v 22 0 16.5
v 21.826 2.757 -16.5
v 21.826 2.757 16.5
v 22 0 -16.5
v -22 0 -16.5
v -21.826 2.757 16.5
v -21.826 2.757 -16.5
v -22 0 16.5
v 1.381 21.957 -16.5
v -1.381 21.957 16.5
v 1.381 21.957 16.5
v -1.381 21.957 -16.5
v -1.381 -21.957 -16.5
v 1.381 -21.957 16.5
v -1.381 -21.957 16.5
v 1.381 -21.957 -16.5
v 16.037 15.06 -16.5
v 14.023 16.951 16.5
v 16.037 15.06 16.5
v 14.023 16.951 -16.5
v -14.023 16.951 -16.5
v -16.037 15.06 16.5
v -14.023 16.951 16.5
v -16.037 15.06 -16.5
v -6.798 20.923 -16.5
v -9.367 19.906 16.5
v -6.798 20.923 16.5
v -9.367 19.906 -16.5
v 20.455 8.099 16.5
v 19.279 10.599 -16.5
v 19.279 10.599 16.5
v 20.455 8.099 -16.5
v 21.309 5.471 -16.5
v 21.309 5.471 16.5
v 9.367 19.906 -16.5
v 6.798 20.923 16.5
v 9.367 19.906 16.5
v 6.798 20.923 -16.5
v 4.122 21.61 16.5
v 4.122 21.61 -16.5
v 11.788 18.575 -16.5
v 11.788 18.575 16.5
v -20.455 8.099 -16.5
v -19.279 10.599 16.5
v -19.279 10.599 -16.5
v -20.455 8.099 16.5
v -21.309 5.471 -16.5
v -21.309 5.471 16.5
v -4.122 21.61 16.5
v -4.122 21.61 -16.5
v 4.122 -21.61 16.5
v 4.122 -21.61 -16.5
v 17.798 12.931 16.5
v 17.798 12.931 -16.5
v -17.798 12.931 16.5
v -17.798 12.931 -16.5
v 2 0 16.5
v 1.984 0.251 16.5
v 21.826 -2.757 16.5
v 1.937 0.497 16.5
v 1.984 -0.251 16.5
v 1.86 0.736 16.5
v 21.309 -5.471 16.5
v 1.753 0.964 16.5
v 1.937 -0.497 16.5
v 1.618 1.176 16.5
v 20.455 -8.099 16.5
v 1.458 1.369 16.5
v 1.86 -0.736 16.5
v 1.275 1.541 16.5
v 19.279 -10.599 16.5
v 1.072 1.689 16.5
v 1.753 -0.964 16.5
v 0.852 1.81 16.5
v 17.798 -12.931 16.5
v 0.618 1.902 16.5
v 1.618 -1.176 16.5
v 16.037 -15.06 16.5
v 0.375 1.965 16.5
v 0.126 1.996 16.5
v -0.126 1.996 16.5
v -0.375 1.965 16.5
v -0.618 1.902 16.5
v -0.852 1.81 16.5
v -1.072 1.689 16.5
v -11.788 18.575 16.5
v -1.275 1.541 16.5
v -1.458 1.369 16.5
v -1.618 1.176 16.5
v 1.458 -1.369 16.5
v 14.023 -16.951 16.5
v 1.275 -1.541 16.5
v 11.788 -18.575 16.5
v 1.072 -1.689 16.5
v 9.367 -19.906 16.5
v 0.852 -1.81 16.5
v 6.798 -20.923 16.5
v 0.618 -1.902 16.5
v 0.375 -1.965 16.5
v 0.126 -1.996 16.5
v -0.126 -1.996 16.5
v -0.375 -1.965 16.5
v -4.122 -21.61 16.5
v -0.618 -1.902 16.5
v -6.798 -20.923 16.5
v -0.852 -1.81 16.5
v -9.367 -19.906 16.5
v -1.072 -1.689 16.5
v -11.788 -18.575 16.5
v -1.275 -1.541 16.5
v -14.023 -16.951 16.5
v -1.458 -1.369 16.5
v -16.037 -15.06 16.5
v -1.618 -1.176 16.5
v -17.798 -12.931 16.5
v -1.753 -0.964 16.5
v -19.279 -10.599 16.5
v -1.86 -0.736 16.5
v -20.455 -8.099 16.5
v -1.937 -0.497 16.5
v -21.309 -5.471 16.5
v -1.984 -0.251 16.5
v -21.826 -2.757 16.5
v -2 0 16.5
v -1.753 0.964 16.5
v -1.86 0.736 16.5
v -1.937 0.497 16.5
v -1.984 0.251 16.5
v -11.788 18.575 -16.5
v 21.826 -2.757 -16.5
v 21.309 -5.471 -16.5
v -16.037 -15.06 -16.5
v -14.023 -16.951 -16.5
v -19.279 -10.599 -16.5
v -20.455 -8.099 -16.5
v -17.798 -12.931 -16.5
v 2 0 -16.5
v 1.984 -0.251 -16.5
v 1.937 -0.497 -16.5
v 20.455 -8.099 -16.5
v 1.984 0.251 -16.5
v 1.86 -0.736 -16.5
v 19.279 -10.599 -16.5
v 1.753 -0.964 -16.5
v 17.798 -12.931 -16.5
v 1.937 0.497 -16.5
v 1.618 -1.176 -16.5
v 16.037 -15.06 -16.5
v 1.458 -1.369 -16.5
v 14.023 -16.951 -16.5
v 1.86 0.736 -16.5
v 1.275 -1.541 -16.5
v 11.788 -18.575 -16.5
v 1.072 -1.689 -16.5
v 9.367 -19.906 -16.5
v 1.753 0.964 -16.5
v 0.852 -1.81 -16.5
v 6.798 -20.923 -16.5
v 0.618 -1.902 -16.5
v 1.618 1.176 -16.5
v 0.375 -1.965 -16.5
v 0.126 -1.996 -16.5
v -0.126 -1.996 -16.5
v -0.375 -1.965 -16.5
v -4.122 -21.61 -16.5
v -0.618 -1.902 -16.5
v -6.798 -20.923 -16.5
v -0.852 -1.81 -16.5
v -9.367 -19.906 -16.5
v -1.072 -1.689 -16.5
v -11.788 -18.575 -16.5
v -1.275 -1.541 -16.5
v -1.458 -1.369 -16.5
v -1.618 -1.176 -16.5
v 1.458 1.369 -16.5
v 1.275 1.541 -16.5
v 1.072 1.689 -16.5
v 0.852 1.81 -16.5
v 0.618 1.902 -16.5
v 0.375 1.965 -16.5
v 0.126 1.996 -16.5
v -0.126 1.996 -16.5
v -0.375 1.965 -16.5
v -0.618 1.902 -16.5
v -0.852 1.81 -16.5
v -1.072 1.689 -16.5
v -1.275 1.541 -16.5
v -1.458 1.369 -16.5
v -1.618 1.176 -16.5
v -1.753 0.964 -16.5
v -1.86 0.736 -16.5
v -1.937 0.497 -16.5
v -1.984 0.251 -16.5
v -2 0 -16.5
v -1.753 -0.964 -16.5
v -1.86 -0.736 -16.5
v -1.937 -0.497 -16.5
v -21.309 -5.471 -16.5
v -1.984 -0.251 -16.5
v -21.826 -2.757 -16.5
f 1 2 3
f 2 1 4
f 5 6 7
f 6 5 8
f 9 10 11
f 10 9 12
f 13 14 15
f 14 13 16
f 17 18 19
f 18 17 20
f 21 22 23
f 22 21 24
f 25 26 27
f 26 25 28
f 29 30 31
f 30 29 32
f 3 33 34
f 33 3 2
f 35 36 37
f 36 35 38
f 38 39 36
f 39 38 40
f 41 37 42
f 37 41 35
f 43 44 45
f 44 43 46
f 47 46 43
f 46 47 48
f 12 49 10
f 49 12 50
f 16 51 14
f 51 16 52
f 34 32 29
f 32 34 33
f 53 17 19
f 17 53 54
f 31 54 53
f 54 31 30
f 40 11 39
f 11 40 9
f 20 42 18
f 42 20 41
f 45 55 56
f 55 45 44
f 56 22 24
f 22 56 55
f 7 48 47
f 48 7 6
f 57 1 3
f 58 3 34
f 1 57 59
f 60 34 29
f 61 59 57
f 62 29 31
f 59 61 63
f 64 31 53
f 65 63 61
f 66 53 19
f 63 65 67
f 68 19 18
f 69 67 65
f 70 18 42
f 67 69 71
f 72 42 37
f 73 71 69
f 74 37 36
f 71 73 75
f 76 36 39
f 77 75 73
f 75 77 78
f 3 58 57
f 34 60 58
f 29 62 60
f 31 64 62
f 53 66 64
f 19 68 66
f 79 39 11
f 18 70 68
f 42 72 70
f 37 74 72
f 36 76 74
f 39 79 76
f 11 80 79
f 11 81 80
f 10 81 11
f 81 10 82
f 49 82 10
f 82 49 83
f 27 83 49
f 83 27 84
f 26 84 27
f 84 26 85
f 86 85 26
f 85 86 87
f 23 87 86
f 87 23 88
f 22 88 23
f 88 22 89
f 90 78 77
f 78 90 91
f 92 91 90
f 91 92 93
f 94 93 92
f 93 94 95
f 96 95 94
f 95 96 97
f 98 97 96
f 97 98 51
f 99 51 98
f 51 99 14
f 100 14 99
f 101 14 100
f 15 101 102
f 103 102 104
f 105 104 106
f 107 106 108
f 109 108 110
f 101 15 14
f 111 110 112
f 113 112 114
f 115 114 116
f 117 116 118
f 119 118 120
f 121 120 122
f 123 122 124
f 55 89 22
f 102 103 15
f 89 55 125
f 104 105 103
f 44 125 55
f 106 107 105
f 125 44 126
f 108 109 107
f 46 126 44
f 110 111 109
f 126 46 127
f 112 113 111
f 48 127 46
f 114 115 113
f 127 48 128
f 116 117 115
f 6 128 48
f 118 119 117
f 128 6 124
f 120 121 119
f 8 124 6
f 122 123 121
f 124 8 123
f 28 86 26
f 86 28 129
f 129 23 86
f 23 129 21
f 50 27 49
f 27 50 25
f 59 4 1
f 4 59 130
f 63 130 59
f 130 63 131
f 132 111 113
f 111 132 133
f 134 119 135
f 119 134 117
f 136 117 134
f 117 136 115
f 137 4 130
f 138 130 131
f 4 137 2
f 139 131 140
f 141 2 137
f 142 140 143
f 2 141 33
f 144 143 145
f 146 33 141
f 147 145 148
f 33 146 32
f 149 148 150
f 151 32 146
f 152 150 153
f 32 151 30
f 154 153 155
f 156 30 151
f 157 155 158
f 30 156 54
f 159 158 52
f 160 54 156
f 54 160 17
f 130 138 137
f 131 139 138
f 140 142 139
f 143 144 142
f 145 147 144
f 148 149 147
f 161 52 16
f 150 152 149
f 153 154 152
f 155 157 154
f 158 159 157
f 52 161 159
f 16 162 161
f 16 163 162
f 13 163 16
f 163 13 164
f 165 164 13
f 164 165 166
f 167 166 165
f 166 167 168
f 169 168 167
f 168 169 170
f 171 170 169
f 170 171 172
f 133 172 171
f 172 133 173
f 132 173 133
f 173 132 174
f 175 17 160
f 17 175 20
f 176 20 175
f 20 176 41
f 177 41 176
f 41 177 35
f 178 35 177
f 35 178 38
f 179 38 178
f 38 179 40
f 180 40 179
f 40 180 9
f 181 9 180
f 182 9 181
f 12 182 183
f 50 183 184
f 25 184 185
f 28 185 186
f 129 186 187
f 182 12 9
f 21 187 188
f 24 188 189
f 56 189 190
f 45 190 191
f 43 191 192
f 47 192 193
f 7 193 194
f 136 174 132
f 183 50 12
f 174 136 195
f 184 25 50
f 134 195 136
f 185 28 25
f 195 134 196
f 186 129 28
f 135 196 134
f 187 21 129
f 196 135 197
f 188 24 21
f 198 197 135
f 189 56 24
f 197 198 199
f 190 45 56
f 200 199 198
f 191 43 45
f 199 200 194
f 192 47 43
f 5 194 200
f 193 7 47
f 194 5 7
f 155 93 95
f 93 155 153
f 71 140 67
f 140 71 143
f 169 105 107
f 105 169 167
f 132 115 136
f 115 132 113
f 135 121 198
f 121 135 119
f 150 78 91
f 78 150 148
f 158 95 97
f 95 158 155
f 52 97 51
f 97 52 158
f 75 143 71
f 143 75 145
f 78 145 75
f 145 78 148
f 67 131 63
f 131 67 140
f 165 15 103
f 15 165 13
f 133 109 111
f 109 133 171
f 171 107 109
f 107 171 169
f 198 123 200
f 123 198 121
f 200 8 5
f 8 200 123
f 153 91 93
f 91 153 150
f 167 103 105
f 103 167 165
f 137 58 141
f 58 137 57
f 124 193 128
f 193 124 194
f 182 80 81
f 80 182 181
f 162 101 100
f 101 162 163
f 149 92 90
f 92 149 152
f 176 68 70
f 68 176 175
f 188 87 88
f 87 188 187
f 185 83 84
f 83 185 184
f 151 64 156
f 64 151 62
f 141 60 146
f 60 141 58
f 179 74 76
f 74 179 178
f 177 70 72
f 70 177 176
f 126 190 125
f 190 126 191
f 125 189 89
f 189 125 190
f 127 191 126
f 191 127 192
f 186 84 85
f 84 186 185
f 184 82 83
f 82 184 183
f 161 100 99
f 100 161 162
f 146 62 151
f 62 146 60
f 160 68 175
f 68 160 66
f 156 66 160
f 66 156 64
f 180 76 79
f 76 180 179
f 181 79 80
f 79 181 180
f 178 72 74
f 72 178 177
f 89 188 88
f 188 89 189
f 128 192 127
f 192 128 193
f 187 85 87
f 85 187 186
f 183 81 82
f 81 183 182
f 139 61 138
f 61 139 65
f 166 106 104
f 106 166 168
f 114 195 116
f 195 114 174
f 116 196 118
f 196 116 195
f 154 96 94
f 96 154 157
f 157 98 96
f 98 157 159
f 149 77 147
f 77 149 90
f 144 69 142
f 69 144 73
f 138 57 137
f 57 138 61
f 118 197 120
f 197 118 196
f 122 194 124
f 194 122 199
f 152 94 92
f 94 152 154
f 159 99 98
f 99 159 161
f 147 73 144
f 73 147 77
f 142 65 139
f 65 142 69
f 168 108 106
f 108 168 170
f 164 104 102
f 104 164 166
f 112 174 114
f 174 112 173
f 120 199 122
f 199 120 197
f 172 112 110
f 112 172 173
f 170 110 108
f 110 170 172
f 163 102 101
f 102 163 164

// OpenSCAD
$fn = 50;


difference() {
	union() {
		translate(v = [0, 0, -16.5000000000]) {
			cylinder(h = 33, r = 22.0000000000);
		}
	}
	union() {
		translate(v = [0, 0, -100.0000000000]) {
			cylinder(h = 200, r = 2.0000000000);
		}
	}
}
